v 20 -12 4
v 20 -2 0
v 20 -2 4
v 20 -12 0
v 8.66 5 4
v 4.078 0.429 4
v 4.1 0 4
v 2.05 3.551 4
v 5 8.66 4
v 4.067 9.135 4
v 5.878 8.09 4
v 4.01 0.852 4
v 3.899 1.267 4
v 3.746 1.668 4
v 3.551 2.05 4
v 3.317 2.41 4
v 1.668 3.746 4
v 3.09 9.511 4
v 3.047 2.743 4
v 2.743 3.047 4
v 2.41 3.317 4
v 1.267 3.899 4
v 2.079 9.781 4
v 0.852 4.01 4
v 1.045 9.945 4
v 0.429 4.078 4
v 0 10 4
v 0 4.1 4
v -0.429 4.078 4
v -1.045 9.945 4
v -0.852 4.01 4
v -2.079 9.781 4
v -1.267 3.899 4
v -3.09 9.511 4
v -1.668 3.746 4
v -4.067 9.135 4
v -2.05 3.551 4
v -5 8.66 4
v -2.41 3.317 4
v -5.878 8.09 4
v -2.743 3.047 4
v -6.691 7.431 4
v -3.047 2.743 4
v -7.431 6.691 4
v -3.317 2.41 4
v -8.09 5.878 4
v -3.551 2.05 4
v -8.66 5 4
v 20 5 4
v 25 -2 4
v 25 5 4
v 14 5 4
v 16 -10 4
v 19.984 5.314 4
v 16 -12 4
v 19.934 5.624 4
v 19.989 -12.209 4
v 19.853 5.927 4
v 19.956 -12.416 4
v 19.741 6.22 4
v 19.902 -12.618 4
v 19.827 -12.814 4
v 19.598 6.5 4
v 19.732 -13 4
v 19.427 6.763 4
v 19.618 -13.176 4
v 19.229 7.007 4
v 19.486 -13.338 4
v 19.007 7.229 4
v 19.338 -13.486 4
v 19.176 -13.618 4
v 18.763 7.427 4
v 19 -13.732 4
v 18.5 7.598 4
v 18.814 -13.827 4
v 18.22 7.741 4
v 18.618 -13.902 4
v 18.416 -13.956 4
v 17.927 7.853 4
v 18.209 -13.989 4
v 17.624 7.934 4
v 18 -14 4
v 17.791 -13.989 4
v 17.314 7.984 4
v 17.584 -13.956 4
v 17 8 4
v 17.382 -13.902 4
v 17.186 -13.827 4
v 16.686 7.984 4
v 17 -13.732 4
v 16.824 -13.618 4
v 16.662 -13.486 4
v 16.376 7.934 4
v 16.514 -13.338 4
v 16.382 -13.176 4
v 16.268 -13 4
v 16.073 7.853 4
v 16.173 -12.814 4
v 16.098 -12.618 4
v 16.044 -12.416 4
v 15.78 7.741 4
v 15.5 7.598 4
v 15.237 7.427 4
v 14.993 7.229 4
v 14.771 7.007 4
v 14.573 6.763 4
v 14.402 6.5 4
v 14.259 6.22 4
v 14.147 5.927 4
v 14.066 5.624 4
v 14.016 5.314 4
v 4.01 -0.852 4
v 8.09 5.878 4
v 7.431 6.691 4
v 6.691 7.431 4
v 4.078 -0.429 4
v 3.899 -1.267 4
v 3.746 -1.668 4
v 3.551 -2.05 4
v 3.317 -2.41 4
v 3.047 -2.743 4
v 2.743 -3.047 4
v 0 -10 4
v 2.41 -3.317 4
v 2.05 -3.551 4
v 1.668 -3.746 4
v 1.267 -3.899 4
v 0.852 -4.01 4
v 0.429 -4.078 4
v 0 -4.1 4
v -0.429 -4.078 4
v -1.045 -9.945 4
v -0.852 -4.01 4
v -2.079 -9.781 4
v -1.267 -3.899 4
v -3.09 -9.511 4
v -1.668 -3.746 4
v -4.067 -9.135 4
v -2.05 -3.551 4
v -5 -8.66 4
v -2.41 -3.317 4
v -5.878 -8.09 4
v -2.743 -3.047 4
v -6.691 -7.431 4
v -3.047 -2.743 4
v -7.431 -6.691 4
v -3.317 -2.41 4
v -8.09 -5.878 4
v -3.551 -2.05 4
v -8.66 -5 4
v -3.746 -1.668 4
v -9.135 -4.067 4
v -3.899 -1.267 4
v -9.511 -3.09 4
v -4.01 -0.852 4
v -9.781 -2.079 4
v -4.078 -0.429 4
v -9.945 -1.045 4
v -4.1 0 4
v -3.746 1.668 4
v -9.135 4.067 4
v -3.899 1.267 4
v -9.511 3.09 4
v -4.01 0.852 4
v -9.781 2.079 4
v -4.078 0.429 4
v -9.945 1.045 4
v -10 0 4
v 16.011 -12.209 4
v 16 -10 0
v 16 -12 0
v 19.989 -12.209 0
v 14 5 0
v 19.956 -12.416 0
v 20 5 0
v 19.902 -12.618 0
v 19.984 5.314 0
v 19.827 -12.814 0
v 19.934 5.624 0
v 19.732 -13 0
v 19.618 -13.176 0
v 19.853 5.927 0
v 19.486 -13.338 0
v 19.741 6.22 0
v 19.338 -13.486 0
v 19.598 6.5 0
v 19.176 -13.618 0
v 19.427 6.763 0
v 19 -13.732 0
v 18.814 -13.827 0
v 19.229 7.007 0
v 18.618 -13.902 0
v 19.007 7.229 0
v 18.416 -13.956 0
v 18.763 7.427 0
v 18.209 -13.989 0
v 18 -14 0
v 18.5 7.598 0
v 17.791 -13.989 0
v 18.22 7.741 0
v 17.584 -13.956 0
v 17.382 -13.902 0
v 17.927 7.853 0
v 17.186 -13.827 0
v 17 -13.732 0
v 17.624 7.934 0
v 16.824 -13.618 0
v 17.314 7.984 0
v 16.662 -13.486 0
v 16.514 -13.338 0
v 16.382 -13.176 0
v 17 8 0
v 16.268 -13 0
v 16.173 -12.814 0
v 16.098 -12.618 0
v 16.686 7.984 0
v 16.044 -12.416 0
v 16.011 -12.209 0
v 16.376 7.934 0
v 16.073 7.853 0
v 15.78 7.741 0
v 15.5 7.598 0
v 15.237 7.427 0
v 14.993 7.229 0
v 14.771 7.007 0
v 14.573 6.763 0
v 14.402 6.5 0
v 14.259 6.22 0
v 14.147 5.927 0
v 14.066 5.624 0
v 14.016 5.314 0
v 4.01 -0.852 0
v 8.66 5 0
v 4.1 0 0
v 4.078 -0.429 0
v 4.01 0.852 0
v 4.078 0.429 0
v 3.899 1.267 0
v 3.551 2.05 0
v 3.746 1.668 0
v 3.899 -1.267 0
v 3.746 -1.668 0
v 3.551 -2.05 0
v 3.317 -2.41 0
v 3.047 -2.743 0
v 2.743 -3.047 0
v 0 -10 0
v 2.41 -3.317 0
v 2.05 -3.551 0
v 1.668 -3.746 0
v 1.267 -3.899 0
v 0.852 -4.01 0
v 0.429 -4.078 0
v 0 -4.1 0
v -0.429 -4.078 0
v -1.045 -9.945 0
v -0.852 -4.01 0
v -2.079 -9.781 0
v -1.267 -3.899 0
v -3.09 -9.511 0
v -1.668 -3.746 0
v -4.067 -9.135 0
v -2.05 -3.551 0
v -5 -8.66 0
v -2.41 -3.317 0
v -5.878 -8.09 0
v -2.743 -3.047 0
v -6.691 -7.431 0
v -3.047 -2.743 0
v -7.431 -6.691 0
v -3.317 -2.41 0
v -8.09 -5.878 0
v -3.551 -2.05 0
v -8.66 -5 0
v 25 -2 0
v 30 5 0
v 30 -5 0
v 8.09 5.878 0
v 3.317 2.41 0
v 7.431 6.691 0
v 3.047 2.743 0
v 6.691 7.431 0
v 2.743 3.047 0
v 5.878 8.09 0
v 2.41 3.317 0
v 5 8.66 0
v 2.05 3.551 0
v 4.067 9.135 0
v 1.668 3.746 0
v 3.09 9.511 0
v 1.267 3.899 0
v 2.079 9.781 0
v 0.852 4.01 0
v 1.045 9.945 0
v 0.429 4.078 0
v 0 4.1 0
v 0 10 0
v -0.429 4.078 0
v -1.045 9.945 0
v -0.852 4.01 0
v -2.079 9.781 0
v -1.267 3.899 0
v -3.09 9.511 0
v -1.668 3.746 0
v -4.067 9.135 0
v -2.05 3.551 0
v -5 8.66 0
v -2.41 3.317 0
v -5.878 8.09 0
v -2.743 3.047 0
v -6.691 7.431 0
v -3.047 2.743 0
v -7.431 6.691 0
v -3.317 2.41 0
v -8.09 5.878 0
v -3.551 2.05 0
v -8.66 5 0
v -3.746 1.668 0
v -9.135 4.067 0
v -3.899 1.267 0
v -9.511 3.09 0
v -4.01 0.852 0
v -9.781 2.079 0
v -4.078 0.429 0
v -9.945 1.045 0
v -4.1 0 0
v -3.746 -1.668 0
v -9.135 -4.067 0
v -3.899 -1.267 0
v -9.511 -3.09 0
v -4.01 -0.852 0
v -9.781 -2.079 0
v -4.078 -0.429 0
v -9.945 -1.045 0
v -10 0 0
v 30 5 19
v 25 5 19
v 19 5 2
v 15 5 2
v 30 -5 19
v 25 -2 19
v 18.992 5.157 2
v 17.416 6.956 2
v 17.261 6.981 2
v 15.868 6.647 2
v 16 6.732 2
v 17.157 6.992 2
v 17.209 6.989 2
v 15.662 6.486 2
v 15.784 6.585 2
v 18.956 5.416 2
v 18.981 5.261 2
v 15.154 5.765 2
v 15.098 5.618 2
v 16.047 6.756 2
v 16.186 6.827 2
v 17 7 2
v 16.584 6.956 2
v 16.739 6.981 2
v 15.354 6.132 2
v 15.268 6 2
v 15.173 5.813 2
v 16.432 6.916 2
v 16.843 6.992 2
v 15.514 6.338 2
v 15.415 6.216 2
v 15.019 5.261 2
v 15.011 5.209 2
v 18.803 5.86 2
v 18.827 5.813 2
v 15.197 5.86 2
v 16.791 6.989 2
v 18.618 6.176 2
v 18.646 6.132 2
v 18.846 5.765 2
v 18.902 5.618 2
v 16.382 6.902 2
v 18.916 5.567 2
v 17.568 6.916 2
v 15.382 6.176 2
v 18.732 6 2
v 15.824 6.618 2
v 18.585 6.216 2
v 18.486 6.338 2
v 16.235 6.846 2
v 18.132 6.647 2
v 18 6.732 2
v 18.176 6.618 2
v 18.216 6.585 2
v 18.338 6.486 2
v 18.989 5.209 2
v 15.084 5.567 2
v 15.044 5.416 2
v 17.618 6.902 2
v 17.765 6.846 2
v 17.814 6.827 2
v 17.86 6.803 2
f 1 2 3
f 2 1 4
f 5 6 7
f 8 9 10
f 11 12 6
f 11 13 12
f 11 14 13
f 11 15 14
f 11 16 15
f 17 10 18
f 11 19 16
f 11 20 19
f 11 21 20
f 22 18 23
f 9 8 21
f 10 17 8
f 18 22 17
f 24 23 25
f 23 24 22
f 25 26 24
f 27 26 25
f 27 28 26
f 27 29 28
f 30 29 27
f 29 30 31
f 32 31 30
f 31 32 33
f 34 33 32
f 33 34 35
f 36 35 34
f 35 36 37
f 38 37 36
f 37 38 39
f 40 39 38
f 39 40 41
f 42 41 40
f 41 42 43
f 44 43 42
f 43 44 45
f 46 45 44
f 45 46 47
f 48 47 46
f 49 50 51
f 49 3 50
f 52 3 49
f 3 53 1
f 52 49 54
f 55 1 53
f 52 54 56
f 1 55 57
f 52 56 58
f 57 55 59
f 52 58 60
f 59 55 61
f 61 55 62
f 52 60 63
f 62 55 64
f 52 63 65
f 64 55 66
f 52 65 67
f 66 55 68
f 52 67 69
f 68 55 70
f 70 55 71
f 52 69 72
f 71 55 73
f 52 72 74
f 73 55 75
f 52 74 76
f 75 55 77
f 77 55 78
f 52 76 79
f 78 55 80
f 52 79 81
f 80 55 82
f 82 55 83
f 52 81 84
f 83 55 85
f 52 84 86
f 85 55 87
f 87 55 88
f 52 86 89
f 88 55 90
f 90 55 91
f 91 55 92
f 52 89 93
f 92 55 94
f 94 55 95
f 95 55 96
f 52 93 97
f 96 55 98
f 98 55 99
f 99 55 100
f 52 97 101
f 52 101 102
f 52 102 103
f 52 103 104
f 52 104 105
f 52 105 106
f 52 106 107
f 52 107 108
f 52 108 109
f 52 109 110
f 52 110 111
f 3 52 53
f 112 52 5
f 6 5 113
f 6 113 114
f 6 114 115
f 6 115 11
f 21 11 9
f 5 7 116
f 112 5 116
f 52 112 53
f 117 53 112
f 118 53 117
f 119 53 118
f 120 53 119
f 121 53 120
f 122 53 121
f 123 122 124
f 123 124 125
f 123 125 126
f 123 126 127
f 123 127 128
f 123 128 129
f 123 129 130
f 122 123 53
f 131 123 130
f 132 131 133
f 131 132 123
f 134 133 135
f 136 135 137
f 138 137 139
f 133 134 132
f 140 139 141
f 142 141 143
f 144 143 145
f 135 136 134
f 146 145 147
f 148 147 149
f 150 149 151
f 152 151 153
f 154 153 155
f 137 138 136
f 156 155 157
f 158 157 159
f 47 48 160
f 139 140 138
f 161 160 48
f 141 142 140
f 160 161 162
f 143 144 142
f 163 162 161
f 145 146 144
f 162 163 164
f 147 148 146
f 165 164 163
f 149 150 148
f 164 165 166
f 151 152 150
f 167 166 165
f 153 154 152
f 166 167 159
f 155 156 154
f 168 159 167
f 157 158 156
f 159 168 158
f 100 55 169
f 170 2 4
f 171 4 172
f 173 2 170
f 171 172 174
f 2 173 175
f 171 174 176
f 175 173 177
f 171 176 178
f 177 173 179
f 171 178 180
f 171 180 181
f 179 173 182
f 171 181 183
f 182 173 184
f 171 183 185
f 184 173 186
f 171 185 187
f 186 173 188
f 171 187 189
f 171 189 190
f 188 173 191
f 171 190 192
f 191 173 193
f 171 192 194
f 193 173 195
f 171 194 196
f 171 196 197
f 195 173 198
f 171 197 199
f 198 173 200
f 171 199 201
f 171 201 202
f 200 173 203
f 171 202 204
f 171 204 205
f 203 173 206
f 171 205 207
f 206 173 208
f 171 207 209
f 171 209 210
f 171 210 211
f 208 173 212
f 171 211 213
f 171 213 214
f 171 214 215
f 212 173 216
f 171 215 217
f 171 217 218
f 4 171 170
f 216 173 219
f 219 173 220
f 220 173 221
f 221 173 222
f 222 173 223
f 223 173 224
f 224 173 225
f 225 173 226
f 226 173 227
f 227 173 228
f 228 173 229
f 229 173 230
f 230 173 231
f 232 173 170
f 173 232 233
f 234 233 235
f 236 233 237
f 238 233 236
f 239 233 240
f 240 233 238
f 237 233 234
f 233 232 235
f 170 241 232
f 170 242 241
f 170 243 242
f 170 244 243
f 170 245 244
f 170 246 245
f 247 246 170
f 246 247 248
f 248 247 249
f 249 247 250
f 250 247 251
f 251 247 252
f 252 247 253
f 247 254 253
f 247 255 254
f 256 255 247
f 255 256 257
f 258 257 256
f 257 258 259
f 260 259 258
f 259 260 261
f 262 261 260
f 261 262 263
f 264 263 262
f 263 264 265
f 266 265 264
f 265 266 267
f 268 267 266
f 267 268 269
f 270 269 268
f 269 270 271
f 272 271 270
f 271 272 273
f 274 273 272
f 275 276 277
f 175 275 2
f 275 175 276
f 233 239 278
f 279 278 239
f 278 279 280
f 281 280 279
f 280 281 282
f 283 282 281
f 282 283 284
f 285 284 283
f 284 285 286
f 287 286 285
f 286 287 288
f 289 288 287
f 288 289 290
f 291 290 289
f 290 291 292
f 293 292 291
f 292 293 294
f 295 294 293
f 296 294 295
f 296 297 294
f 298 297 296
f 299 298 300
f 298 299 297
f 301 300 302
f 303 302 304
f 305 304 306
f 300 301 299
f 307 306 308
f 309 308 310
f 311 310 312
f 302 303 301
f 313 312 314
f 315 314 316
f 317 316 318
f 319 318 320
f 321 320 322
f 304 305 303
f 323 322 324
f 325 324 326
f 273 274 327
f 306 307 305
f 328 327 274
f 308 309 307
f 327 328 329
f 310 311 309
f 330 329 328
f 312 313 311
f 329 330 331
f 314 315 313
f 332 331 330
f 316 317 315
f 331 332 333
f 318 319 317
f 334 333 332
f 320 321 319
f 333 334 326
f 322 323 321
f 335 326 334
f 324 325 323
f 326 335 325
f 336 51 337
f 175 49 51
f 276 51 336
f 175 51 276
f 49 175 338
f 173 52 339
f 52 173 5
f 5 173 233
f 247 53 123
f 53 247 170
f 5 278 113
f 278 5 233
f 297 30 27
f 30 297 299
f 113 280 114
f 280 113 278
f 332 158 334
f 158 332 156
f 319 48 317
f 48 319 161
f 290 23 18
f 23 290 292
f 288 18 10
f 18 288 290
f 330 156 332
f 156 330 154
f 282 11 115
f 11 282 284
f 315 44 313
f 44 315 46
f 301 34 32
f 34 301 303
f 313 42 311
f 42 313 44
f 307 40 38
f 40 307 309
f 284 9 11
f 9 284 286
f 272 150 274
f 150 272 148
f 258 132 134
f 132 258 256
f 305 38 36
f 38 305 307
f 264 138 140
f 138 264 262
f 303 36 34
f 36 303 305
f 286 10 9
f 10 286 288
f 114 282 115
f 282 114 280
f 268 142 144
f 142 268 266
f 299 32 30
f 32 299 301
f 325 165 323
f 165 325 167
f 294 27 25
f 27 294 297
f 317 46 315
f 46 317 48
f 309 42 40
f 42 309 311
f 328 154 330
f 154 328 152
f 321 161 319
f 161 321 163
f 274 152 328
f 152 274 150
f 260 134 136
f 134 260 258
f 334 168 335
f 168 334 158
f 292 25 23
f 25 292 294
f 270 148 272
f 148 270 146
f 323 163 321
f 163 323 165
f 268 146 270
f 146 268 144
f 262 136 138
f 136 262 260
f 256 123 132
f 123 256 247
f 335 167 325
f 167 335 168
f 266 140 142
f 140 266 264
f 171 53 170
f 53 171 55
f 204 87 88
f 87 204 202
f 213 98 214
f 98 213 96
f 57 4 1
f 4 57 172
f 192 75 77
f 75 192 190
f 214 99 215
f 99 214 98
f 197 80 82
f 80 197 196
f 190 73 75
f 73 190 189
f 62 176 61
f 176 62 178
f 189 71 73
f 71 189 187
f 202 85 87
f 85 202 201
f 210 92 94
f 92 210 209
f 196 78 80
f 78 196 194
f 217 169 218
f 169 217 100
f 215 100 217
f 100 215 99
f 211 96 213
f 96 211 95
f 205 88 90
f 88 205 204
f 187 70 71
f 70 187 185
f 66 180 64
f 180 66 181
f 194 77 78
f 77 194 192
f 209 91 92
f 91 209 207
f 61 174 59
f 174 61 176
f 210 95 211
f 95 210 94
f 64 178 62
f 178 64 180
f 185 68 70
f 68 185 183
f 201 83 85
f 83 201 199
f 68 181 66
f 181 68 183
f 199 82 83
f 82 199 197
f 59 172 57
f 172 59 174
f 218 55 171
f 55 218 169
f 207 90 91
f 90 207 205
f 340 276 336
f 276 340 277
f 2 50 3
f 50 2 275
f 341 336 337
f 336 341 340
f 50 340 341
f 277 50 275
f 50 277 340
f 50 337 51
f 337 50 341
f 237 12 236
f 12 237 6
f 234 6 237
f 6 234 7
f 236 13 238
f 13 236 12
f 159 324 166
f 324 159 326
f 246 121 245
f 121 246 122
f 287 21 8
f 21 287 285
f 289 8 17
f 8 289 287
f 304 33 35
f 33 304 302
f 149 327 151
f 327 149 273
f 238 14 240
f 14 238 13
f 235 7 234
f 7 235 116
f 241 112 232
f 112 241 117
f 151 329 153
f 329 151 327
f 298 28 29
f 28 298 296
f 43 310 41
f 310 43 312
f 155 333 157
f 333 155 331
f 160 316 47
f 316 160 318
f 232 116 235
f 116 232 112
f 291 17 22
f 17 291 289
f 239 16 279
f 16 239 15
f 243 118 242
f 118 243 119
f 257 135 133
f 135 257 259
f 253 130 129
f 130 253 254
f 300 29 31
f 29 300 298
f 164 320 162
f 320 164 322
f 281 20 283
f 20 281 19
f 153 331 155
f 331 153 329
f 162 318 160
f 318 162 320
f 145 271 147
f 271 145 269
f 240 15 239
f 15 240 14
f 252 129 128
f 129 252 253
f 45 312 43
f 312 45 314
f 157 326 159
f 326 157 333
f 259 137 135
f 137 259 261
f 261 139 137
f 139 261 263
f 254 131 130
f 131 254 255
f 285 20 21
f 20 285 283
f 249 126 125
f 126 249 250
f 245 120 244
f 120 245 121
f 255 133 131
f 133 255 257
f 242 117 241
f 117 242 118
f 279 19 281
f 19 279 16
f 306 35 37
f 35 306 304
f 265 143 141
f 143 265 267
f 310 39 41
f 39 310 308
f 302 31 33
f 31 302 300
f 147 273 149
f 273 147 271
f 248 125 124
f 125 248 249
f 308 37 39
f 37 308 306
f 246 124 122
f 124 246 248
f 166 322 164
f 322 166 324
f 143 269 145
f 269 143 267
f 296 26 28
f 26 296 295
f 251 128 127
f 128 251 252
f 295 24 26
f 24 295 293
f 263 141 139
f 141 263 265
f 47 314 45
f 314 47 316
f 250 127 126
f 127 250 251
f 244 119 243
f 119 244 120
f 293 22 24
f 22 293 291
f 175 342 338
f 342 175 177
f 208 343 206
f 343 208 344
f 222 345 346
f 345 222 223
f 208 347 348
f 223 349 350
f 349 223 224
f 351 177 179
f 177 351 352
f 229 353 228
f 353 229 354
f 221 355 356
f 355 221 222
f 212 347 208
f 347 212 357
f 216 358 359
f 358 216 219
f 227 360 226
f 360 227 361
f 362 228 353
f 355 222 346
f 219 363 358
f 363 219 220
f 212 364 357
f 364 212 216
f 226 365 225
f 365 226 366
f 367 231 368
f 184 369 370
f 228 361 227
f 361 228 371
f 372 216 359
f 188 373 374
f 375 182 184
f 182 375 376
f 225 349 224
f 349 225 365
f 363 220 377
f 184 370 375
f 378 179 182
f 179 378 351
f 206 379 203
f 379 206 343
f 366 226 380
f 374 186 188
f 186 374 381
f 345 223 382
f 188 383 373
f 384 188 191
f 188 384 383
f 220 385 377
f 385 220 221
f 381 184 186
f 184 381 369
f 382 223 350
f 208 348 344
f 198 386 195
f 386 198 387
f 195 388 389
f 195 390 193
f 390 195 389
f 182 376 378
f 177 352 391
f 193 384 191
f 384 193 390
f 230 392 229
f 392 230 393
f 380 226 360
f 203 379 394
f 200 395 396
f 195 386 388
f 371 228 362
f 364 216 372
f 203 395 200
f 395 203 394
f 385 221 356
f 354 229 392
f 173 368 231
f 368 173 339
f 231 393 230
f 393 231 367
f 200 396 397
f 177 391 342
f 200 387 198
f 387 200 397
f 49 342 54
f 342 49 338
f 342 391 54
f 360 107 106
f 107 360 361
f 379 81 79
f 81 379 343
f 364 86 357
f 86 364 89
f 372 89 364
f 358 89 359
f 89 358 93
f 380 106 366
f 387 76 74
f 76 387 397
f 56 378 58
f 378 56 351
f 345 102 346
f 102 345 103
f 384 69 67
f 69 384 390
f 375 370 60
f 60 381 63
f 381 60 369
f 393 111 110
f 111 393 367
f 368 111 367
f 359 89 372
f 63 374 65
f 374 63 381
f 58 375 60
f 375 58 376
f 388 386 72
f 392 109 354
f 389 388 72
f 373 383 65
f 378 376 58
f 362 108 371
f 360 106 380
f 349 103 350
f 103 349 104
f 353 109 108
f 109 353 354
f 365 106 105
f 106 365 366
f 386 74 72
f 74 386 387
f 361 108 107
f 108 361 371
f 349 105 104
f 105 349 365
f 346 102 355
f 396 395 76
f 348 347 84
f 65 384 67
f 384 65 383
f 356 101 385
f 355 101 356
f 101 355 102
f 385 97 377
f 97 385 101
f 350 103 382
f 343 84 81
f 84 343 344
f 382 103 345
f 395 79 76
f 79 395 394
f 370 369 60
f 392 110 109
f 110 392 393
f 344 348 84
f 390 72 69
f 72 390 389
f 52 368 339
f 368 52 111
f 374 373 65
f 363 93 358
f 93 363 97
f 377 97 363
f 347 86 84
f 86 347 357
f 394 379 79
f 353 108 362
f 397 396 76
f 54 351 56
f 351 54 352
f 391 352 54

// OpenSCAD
// file: config_5x7.scad
/*
This is the base configuration file for the 5x7" format
# we are not using the exact ANSI measures, but slightly rounded measures for slight simplification
*/

// general tolerance
vTolerance = 0.2;

// sheet film and cassette measurements (roughly based on the ANSI measurements)
vFilmSheet_l = 178;
vFilmSheet_w = 127;
vCassette_l = 214; // A min
vCassette_w = 150; // B max
vCassette_h = 14; // C max (14.3)
vLightTrap_l = 1.5; // M2
vLightTrap_w = vCassette_w;
vLightTrap_h = 1.5; // M1
vLightTrap_offsetX = 194.5; // G max
vFilmWindow_l = 171;
vFilmWindow_w = 126;
vFilmWindow_offsetX = 18;
vGroundGlass_offsetZ = 5.8;

// Graflok - although 5x7 normally doesn't have Graflok clamps, but we use this measurement on the back plate
vGraflok_h = 6; // this is not the official measurement, just measured from a camera 

// lens board measures (we are using Wista/Technika-style lensboards)
vLensboard_l = 100;
vLensboard_w = 97;
vLensboard_h = 2;
vLensboard_offsetX = -(vLensboard_l+3)/2; // caution: we have an asymetric offset!
vLensboard_offsetY = -vLensboard_w/2;
vLensboardHole_d = 85;
vLensboardLighttrap_d = 89;
vLensboardLighttrap_h = 1+vTolerance;

// bellows frame measures - the bellows frame design is derived from standardcameras.com
// back frame
vBellowsBackInner_l = 193;
vBellowsBackInner_w = vBellowsBackInner_l;
vBellowsBackOuter_l = vBellowsBackInner_l+1;
vBellowsBackOuter_w = vBellowsBackOuter_l;

vBellowsBackFrameOuter_l = 209;
vBellowsBackFrameOuter_w = vBellowsBackFrameOuter_l;
vBellowsBackFrameOuter_h = 7;
vBellowsBackFrameInner_l = 180;
vBellowsBackFrameInner_w = vBellowsBackFrameInner_l;
vBellowsBackFrameInner_h = 5;

vBellowsBackLightTrapOuter_l = vBellowsBackFrameInner_l+2*2;
vBellowsBackLightTrapOuter_w = vBellowsBackLightTrapOuter_l;
vBellowsBackLightTrap_h = 3;

vBellowsBackFrameScrewHole_d = 2;
vBellowsBackFrameScrewHole_h = 10;
vBellowsBackFrameScrewHole_offsetXY = 80;
vBellowsBackFrameScrewHole_offsetZ = vBellowsBackFrameOuter_h/2;

// front frame
vBellowsFrontInner_l = 110; 
vBellowsFrontInner_w = vBellowsFrontInner_l;
vBellowsFrontOuter_l = vBellowsFrontInner_l+1;
vBellowsFrontOuter_w = vBellowsFrontOuter_l;

vBellowsFrontFrameOuter_l = 124;
vBellowsFrontFrameOuter_w = vBellowsFrontFrameOuter_l;
vBellowsFrontFrameOuter_h = 7;
vBellowsFrontFrameInner_l = 98;
vBellowsFrontFrameInner_w = vBellowsFrontFrameInner_l;
vBellowsFrontFrameInner_h = 5;

vBellowsFrontLightTrapOuter_l = vBellowsFrontFrameInner_l+2*2;
vBellowsFrontLightTrapOuter_w = vBellowsFrontLightTrapOuter_l;
vBellowsFrontLightTrap_h = 0;

vBellowsFrontFrameScrewHole_d = 2;
vBellowsFrontFrameScrewHole_h = 10;
vBellowsFrontFrameScrewHole_offsetXY = 50;
vBellowsFrontFrameScrewHole_offsetZ = vBellowsFrontFrameOuter_h/2;

// body dimensions
vWall_strength = 5;
vBodyOuter_l = 230;
//vBodyOuter_l = 235; // make sure this is at least 4*vWall_strength larger than vBellowsBackFrameOuter_l!
vBodyOuter_w = 220; // make sure this is at least 2*vWall_strength larger than vBellowsBackFrameOuter_l!
vBodyOuter_h = 65;
vBodyEdge_r = vWall_strength;

// we will center our model on the Y axis and on the center of the bellows frame
// at least for the 4x5 version, we have to do an asymetric offset of 2.5mm on the X-axis 
vAsymOffsetX = 0;
//vAsymOffsetX = -2.5;  

// back plate
vBackPlateLength = 210; // we will probably use about the same size as the bellows back frame
vBackPlateStrength = vWall_strength;

// hinges for front lid
vHingeInnerDistance = 120;
vHingeBaseWidth = 30;
vHingeHole = 5;

// lid lock measures
vLidLockBase_d = 8;
vLidLockHole_distance = 100;

// rail dimensions
vLowerRail_w = 120;
vUpperRail_w = vLowerRail_w;

// cutout for stop indents
vStopIndent_l = 4;
vStopIndent_h = 5;
vStopIndentDistance = 30; // shorter than 25 is not necessary
vStopIndent_offsetX = 35; // don't go shorter than 20 if you intend to use a 90mm lens!

// for all dovetails we use a base width of 5mm and a base height of 5mm
// we are applying tolerances to the inner AND outer part of a dovetail, in width and height
vDoveTail_w = 5;
vDoveTail_h = 5;
vDoveTail_tolerance = 0.2;

// front standard carrier / slider
// width is depending on vUpperRail_w
vSliderBase_w = vUpperRail_w + (4*vDoveTail_w);
vSliderBase_l = 40; // make sure to have enough space in the body.


// lever plate 
vLeverPlateBase_w = vUpperRail_w - (8*vDoveTail_w);
vLeverPlateBlock_w = 50;
vLeverPlateBlock_l = vSliderBase_l-(2*vDoveTail_w);

vFrontStandard_h = 160;
vFrontStandardSlot_h = vFrontStandard_h - 30;


// lensboard carrier
vFrontPlate_length = vSliderBase_w; // vSliderBase_w is a bit too tight for 4x5", so there wie will add 5mm, for 5x7 vSliderBase_w is OK to get a squared lensboard carrier
vFrontPlate_width = vSliderBase_w; //vFrontPlate_length;
vFrontPlate_height = 16;
vEdgeCutCylinder = floor(sqrt(2*pow(vFrontPlate_width,2)))-12;

vTiltDovetail_d1 = 30-vTolerance;
vTiltDovetail_d2 = vTiltDovetail_d1+(2*vDoveTail_w);
vTiltDovetail_h = vDoveTail_w-vTolerance;

vAxisHole_d = 10+vTolerance;
vAxisHole_h = vDoveTail_w+vTolerance;

vTiltLockBolt_d = 12;
vTiltLockBolt_h = 18;
vTiltLockBoltHole_d = 7;
vTiltLockBoltHole_h = vTiltLockBolt_h;

// focusing rod
vFocusingRod_d = 6;
vFocusingKnob_d = 25;
vFocusingKnob_h = 20;

// stabilizer measures (just the outer measures of our stabilizer block, not the tripod slider)
vStabilizerBase_l = vBodyOuter_l;
vStabilizerBase_w = 100;  
vStabilizerBase_h = 2;
vStabilizerTotal_h = 7;
vStabilizerDovetailBase_w = 50;

// screw holes for the stabilizer
vLidHoleCount_x = 6;
vLidHoleDist_x = 35;
vLidHoleCount_y = 2;
vLidHoleDist_y = 60;

// screw diameters, length is individually set
vScrew1Hole_d = 3;
vScrew1ThreadHole_d = 2.2;
vScrew2Hole_d = 2;
vScrew2ThreadHole_d = 1.4;


 
// file: modules.scad
/*
This is a collection of the modules which are used heavily within the whole project.
Almost all parts rely on the modules to remain "as is", especially regarding their current orientation.
So please act very carefully here, otherwise you may screw up the complete design!

*/

// roof module - this is heavily used for dovetail cutouts
// please keep as is
module roof(l, w, h){
    polyhedron(
        points=[
            [0,0,0],
            [l,0,0],
            [l,w,0],
            [0,w,0],
            [0,w/2,h],
            [l,w/2,h]
            ],
        faces=[
            [0,1,2,3],
            [0,4,1],
            [1,4,5,2],
            [2,5,3],
            [3,5,4,0]
            ]
            );
    };

// a wedge module - this is heavily used for cutting edges
// please keep as is    
module wedge(l, w, h) {
    polyhedron(
            points=[
                [0,0,0],
                [l,0,0],
                [l,w,0],
                [0,w,0],
                [0,0,h],
                [l,0,h]
            ],
            faces=[
                [0,3,2,1],
                [0,1,5,4],
                [1,2,5],
                [2,3,4,5],
                [3,0,4]
            ]
    );
   };

// simple tube module.   
module tube(d1, d2, h) {
    difference() {
        cylinder(d=d1, h=h);
        cylinder(d=d2, h=h);
        };
    };

// mainly used for making holes for countersunk screws
// please keep as is    
module countersunk_screw(vScrew_d, vScrew_l){
    union(){
    cylinder(d=vScrew_d, h= vScrew_l);
    cylinder(d1=vScrew_d*2, h=vScrew_d);
    };
};

// module for making hexagons, e.g. hex nuts. kw is the key width
// please keep as is
module hex(kw, h) {
	render()
        translate([0, 0, h/2])
            intersection_for(a = [0, 120, 240]) {
                rotate([0, 0, a])
                    cube([kw, 3 * kw, h], true);
                }
}
// file: baseconfig.scad
/*
Here we define some variables which are independent from the camera format
*/


// some generic variables
$fn = 60; // we are using 60 fragments for cylinders and similar objects

// we are including a format specific configuration sheet - but make sure to include only one!

// include <config_4x5.scad>;
include <config_5x7.scad>;
// include <config_8x10.scad>;

// Arca Swiss tripod plate
// caution: some Arca Swiss compatible tripod heads may have slight variations
// vArca_length = xx; // the length is irrelevant here
vArca_width = 38;
vArca_height = 7;
vArcaBase_cutout = 4;
vArcaBase_height = 1.5;
// main file
// loading the base configuration
include <baseconfig.scad>;

// some modules such as hex, countersunk screws, roof, wedge are available in a module file
use <modules.scad>;


vLeverBasePlate_length = 20;
vLeverBasePlate_width = 15;
vLeverBasePlate_height = 4;
vLeverBasePlate_offsetX = 0;
vLeverBasePlate_offsetY = -10;
vLeverBasePlate_offsetZ = 0;

vLockingBolt_length = 4;
vLockingBolt_width = 2;
vLockingBolt_radius = vLockingBolt_width;
vLockingBolt_height = vLeverBasePlate_height;
vLockingBolt_offsetX = vLeverBasePlate_length-vLockingBolt_length;
vLockingBolt_offsetY = vLeverBasePlate_offsetY-vLockingBolt_width;
vLockingBolt_offsetZ = 0;

vPullingLever_length = 30;
vPullingLever_width = 7;
vPullingLever_height = vLeverBasePlate_height;
vPullingLever_offsetX = 0;
vPullingLever_offsetY = -2;
vPullingLever_offsetZ = 0;

vPullingGrip_length = 5;
vPullingGrip_width = vPullingLever_width;
vPullingGrip_height = vLeverBasePlate_height+15;
vPullingGrip_offsetX = vPullingLever_length-vPullingGrip_length;
vPullingGrip_offsetY = vPullingLever_offsetY;
vPullingGrip_offsetZ = 0;
vPullingGripWedge_length = vPullingGrip_length;
vPullingGripWedge_width = -3;
vPullingGripWedge_height = vPullingGrip_height;
vPullingGripWedge_offsetX = vPullingLever_length;
vPullingGripWedge_offsetY = vPullingLever_offsetY;
vPullingGripWedge_offsetZ = vPullingGrip_height;

vSpringLever_d1 = 6;
vSpringLever_d2 = 2;
vSpringLever_h = vLeverBasePlate_height;
vSpringLever_offsetX = vLeverBasePlate_length-(vSpringLever_d1/2);
vSpringLever_offsetY = 5;
vSpringLever_offsetZ = 0;


vBoltHole_d = 8+vTolerance;
vBoltHole_h = vLeverBasePlate_height;
vBoltHole_offsetX = 0;
vBoltHole_offsetY = 0;
vBoltHole_offsetZ = 0;




// temporary objects

translate([vSpringLever_offsetX, vSpringLever_offsetY, vSpringLever_offsetZ])
    cylinder(d1=vSpringLever_d1, d2=vSpringLever_d2, h=vSpringLever_h);
translate([vSpringLever_offsetX, vSpringLever_offsetY, vSpringLever_offsetZ])
    cylinder(d1=vSpringLever_d2, d2=vSpringLever_d1, h=vSpringLever_h);

difference(){
    union(){
            translate([vLeverBasePlate_offsetX, vLeverBasePlate_offsetY, vLeverBasePlate_offsetZ])
                cube([vLeverBasePlate_length, vLeverBasePlate_width, vLeverBasePlate_height]);
            
            // rounded back
            translate([vLeverBasePlate_offsetX, 0, vLeverBasePlate_offsetZ])
                cylinder(h=vLeverBasePlate_height, d=vLeverBasePlate_length);    
            
            // locking bolt
            translate([vLockingBolt_offsetX, vLockingBolt_offsetY, vLockingBolt_offsetZ])
                cube([vLockingBolt_length, vLockingBolt_width, vLockingBolt_height]);
            translate([vLockingBolt_offsetX+vLockingBolt_radius, vLockingBolt_offsetY, vLockingBolt_offsetZ])
                cylinder(h=vLockingBolt_height, r=vLockingBolt_width);
            
            // pulling lever
            translate([vPullingLever_offsetX, vPullingLever_offsetY, vPullingLever_offsetZ])
                cube([vPullingLever_length, vPullingLever_width, vPullingLever_height]);
        
            translate([vPullingGripWedge_offsetX, vPullingGripWedge_offsetY, vPullingGripWedge_offsetZ])
                rotate([0, 90, 90])
                    wedge(vPullingGripWedge_height, vPullingGripWedge_length, vPullingGripWedge_width);

            translate([vPullingGrip_offsetX, vPullingGrip_offsetY, vPullingGrip_offsetZ])
                cube([vPullingGrip_length, vPullingGrip_width, vPullingGrip_height]);
                
            
            
        };
    translate([vBoltHole_offsetX, vBoltHole_offsetY, vBoltHole_offsetZ])
                cylinder(h=vBoltHole_h, d=vBoltHole_d); 

};
